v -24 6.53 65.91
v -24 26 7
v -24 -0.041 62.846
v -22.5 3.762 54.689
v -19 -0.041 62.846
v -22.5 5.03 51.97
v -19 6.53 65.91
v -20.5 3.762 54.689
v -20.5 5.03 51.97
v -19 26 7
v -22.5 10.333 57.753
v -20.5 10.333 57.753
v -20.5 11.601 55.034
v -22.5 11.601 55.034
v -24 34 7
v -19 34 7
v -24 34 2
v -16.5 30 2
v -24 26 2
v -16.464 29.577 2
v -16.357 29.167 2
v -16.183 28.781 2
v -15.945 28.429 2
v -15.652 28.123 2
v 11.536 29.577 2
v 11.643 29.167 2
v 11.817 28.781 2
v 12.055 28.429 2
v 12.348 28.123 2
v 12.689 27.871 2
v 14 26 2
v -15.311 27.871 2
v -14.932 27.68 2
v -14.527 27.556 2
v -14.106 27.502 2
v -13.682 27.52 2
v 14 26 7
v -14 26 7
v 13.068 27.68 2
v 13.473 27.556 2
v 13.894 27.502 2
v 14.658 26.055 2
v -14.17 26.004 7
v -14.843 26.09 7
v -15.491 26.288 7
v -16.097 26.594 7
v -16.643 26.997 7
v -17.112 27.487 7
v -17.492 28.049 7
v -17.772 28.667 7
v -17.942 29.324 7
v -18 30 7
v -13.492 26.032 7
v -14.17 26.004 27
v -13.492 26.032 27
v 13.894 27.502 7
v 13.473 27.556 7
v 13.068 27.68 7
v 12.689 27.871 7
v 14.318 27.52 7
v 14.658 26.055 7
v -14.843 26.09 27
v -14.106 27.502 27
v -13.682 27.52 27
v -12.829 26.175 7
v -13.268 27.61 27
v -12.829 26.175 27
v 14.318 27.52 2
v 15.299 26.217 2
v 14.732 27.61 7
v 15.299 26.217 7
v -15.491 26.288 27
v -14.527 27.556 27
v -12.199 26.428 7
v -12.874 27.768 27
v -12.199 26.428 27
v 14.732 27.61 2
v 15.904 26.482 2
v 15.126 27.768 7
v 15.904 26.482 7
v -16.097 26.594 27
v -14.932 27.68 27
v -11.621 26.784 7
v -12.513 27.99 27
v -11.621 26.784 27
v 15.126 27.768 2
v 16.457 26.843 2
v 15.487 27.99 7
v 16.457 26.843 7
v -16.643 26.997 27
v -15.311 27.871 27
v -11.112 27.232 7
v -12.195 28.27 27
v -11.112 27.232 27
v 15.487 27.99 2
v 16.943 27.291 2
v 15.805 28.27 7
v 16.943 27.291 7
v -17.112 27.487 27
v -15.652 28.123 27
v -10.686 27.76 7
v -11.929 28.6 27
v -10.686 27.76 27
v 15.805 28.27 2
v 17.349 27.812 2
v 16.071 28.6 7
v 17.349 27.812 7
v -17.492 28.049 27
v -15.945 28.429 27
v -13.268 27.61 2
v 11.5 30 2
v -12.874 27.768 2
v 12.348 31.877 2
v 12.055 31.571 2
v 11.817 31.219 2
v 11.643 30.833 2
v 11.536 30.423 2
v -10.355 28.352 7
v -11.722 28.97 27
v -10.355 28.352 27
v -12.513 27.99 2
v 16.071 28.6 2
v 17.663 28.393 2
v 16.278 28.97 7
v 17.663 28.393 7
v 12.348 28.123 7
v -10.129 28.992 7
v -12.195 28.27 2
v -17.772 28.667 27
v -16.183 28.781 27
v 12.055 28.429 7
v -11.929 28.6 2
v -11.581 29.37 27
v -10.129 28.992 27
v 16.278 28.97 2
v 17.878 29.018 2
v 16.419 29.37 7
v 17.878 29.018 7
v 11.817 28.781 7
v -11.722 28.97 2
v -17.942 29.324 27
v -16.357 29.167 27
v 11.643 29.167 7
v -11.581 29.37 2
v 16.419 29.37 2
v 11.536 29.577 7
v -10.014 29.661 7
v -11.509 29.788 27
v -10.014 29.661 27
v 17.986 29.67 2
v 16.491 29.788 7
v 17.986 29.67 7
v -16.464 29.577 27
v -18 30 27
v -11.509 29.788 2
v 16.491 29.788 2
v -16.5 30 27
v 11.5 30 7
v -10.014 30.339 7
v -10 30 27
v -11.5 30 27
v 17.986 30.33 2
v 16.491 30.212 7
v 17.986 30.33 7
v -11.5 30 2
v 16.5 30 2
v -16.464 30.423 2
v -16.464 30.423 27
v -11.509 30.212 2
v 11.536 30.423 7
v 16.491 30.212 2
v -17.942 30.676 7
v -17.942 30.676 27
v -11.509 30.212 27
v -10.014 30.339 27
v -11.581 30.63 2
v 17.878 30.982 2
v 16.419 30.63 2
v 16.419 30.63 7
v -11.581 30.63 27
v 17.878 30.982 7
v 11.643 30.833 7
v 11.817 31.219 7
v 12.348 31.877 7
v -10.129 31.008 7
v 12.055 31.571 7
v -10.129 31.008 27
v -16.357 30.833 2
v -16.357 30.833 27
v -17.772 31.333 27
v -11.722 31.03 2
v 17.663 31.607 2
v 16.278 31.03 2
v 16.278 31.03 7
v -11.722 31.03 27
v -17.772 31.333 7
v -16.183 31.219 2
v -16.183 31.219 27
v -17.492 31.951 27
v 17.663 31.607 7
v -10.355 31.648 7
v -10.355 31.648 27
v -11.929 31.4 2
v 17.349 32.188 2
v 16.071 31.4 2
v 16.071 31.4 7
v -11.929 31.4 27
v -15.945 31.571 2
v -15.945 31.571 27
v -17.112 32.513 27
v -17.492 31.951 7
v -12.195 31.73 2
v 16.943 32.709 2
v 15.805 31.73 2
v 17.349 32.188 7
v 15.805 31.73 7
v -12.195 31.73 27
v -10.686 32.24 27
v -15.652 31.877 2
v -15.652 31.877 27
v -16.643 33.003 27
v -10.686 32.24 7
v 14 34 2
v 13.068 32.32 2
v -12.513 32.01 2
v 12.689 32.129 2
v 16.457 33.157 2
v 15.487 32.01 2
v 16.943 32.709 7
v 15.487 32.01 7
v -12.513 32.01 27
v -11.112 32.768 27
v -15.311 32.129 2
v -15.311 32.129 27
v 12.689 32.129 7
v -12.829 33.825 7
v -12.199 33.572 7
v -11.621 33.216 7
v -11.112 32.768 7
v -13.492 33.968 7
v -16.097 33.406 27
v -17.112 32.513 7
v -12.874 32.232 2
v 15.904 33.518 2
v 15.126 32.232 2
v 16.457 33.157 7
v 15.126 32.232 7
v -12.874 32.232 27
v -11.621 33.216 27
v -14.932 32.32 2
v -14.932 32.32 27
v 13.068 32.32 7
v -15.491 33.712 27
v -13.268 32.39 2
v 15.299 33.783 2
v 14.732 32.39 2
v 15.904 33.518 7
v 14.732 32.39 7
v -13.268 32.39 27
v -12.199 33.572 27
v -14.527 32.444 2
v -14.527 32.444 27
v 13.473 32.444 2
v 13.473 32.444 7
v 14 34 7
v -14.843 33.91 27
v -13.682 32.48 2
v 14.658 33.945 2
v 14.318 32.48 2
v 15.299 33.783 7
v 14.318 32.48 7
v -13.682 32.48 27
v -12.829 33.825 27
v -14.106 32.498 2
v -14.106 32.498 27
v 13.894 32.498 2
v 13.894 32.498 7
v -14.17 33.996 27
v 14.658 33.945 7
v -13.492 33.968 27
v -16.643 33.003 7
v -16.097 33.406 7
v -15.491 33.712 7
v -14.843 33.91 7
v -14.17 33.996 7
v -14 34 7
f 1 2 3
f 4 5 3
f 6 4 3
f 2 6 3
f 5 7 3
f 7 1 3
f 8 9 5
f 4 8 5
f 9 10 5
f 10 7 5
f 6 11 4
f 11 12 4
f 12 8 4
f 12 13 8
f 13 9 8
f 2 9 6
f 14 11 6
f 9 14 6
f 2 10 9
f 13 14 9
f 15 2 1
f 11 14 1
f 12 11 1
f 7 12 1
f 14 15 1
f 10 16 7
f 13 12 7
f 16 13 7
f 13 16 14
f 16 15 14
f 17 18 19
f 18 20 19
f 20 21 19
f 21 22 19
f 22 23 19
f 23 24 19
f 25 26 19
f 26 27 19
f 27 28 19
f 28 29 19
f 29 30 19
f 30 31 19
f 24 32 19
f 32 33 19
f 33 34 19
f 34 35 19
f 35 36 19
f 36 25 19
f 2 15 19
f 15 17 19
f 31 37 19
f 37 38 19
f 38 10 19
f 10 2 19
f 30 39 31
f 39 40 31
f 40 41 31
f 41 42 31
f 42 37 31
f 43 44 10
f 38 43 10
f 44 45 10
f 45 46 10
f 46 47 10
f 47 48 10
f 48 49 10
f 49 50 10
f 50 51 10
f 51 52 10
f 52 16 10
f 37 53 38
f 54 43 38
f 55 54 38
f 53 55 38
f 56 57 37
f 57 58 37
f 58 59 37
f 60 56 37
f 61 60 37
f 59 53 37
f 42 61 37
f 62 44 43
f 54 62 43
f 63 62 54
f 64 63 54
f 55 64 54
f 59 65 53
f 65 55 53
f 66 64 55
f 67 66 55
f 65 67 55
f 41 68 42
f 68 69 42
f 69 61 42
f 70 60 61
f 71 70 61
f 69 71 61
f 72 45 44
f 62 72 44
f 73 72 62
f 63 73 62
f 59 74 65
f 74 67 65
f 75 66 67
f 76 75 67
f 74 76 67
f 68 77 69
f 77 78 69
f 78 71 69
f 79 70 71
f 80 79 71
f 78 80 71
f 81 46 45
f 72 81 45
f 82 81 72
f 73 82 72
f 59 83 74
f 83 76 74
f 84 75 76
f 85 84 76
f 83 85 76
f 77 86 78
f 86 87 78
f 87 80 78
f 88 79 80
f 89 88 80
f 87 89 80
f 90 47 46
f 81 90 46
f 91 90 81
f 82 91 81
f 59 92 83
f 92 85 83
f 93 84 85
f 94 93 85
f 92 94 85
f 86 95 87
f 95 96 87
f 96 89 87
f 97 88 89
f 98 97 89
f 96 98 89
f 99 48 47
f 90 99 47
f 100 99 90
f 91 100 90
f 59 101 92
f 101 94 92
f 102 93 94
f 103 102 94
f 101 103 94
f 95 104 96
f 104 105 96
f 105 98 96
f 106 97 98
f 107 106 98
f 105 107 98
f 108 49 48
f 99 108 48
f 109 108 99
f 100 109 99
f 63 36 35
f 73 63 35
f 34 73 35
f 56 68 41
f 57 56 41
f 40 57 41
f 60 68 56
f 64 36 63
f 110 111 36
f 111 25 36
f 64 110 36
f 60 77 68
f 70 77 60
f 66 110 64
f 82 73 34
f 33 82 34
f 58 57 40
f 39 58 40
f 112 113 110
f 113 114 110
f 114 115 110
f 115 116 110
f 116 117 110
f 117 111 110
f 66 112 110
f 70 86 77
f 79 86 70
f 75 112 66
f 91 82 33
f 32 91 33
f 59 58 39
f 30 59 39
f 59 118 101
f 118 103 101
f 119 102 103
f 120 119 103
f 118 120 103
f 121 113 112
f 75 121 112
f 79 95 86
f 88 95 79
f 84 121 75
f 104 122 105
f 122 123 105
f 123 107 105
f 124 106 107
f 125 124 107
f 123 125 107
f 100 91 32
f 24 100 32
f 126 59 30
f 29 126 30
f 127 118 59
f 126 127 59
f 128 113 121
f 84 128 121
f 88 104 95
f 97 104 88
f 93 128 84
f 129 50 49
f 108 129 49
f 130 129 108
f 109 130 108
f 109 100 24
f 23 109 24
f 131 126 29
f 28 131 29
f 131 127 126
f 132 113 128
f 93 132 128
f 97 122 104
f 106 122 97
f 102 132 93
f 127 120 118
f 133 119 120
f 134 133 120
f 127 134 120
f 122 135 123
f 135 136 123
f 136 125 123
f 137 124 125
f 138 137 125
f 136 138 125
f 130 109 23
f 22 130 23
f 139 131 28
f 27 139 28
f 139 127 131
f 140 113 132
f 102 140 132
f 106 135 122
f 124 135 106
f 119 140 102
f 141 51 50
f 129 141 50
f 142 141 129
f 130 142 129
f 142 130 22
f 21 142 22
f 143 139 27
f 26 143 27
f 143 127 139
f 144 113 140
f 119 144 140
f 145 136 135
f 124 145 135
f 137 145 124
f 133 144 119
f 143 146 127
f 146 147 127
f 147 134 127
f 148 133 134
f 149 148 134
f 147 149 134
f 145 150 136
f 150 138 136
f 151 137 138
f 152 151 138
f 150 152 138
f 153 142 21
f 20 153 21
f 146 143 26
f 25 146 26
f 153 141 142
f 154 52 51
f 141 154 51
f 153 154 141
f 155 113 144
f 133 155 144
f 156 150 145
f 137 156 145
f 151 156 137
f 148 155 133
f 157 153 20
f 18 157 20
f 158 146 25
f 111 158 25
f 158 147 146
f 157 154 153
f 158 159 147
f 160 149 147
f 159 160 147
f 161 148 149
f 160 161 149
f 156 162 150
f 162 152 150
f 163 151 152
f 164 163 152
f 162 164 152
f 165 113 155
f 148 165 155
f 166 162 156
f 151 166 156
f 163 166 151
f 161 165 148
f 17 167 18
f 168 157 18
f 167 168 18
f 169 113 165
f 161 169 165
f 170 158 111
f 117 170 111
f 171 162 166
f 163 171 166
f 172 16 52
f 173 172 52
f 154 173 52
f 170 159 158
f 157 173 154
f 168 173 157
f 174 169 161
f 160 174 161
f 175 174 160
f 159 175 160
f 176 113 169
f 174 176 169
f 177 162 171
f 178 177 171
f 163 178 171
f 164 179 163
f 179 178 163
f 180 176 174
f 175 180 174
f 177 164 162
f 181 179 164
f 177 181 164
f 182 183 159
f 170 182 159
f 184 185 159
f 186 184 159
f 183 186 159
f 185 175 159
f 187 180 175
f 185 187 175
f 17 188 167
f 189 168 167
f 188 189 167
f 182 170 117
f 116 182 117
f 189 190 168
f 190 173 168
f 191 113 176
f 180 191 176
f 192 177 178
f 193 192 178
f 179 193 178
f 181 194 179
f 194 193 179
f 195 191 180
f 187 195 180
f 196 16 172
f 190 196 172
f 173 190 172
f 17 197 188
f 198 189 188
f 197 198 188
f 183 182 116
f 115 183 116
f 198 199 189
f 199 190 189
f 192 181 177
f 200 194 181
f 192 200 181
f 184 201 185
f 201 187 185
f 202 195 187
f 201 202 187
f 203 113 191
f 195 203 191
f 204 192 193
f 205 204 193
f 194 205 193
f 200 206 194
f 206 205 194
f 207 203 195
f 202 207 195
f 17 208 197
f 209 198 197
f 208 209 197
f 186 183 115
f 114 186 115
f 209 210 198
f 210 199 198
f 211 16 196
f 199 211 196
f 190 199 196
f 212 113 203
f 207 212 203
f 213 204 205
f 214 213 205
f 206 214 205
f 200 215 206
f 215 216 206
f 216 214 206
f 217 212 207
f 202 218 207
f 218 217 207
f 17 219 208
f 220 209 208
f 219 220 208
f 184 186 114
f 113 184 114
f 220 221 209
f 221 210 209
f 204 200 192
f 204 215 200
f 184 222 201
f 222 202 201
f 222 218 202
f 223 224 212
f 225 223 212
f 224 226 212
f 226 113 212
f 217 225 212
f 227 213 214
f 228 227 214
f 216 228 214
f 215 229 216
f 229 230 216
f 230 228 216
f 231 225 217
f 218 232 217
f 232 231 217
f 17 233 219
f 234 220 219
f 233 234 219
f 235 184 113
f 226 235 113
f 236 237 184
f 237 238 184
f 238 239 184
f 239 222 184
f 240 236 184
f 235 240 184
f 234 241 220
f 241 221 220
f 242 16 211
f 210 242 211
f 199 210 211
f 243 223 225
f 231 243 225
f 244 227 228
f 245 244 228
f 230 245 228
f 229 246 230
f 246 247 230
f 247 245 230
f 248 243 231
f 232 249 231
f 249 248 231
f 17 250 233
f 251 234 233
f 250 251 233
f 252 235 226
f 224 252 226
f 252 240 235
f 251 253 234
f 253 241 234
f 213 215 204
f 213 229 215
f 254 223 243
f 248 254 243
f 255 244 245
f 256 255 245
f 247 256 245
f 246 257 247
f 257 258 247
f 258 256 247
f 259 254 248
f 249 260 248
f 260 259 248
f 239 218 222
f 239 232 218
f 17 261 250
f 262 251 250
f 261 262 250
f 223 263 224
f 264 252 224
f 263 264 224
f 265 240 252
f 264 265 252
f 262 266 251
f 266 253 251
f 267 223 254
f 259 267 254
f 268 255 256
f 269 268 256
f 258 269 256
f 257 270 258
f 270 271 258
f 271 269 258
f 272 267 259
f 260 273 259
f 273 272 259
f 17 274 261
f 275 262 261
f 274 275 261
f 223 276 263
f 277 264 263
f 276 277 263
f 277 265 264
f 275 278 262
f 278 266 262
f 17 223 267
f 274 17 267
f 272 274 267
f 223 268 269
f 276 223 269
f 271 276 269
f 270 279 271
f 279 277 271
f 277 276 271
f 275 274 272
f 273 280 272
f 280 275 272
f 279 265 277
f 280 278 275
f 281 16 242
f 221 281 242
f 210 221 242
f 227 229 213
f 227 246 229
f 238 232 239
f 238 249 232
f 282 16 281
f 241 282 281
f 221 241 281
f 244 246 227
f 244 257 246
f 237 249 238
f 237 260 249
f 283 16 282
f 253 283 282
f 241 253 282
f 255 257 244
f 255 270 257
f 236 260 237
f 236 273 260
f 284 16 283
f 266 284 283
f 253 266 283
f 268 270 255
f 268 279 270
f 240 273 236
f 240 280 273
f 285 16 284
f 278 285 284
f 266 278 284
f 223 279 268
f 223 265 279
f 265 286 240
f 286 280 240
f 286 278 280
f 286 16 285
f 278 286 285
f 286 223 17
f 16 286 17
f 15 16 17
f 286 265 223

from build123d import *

# Parameters (mm, degrees)
CROQUIS1_R              = 4
CROQUIS1_R_2            = 1.5
CROQUIS1_R_3            = 3.5
CROQUIS1_R_4            = 1
SALIENTE_EXTRUIR1_DEPTH = 2
REDONDEO1_R             = 3
REDONDEO2_R             = 10
REDONDEO3_R             = 2
CROQUIS2_R              = 2.5
SALIENTE_EXTRUIR2_DEPTH = 5
CORTAR_EXTRUIR1_START   = -2
CROQUIS3_W              = 157.769698099
CROQUIS3_H              = 195.926743138
CORTAR_EXTRUIR1_DEPTH   = 2
CROQUIS9_W              = 5
CROQUIS9_H              = 8
SALIENTE_EXTRUIR8_DEPTH = 65
CORTAR_EXTRUIR2_DEPTH   = 5
CROQUIS11_W             = 2
CROQUIS11_H             = 3
CORTAR_EXTRUIR3_DEPTH   = 7.250462
CROQUIS12_R             = 4
CROQUIS12_R_2           = 2.5
SALIENTE_EXTRUIR9_DEPTH = 20


with BuildPart() as part:
    # Croquis1 → Saliente-Extruir1 (new body)
    with BuildSketch(Plane.XY):
        with BuildLine():
            Line((-42.426406871, 42.426406871), (-38.890872965, 45.961940777))
            Line((-38.890872965, 45.961940777), (-31.096194078, 38.16726189))
            Line((-31.096194078, 38.16726189), (-22.653119822, 29.724187634))
            ThreePointArc((-22.653119822, 29.724187634), (-19.456811617, 29.044722177), (-17.535923889, 31.688251973))
            Line((-17.535923889, 31.688251973), (-15, 80))
            Line((-15, 80), (0, 83))
            Line((0, 83), (15, 80))
            Line((15, 80), (17.535923889, 31.688251973))
            ThreePointArc((17.535923889, 31.688251973), (19.456811617, 29.044722177), (22.653119822, 29.724187634))
            Line((22.653119822, 29.724187634), (31.096194078, 38.16726189))
            Line((31.096194078, 38.16726189), (38.890872965, 45.961940777))
            Line((38.890872965, 45.961940777), (42.426406871, 42.426406871))
            Line((42.426406871, 42.426406871), (45.961940777, 38.890872965))
            Line((45.961940777, 38.890872965), (38.16726189, 31.096194078))
            Line((38.16726189, 31.096194078), (28.284271247, 21.213203436))
            ThreePointArc((28.284271247, 21.213203436), (19.497474683, 0), (28.284271247, -21.213203436))
            Line((28.284271247, -21.213203436), (38.16726189, -31.096194078))
            Line((38.16726189, -31.096194078), (45.961940777, -38.890872965))
            Line((45.961940777, -38.890872965), (42.426406871, -42.426406871))
            Line((42.426406871, -42.426406871), (38.890872965, -45.961940777))
            Line((38.890872965, -45.961940777), (31.096194078, -38.16726189))
            Line((31.096194078, -38.16726189), (22.653119822, -29.724187634))
            ThreePointArc((22.653119822, -29.724187634), (19.456811617, -29.044722177), (17.535923889, -31.688251973))
            Line((17.535923889, -31.688251973), (15, -80))
            Line((15, -80), (0, -83))
            Line((0, -83), (-15, -80))
            Line((-15, -80), (-17.535923889, -31.688251973))
            ThreePointArc((-17.535923889, -31.688251973), (-19.456811617, -29.044722177), (-22.653119822, -29.724187634))
            Line((-22.653119822, -29.724187634), (-31.096194078, -38.16726189))
            Line((-31.096194078, -38.16726189), (-38.890872965, -45.961940777))
            Line((-38.890872965, -45.961940777), (-42.426406871, -42.426406871))
            Line((-42.426406871, -42.426406871), (-45.961940777, -38.890872965))
            Line((-45.961940777, -38.890872965), (-38.16726189, -31.096194078))
            Line((-38.16726189, -31.096194078), (-28.284271247, -21.213203436))
            ThreePointArc((-28.284271247, -21.213203436), (-19.497474683, 0), (-28.284271247, 21.213203436))
            Line((-28.284271247, 21.213203436), (-38.16726189, 31.096194078))
            Line((-38.16726189, 31.096194078), (-45.961940777, 38.890872965))
            Line((-45.961940777, 38.890872965), (-42.426406871, 42.426406871))
        make_face()
        with Locations((-15.25, 15.25)):
            Circle(CROQUIS1_R, mode=Mode.SUBTRACT)
        with Locations((-24.04163056, 24.04163056)):
            Circle(CROQUIS1_R_2, mode=Mode.SUBTRACT)
        with Locations((-38.890872965, 38.890872965)):
            Circle(CROQUIS1_R_2, mode=Mode.SUBTRACT)
        with Locations(Location((38.890872965, 38.890872965, 0), (0, 0, 180))):
            Circle(CROQUIS1_R_2, mode=Mode.SUBTRACT)
        with Locations(Location((24.04163056, 24.04163056, 0), (0, 0, 180))):
            Circle(CROQUIS1_R_2, mode=Mode.SUBTRACT)
        with Locations(Location((15.25, 15.25, 0), (0, 0, 180))):
            Circle(CROQUIS1_R, mode=Mode.SUBTRACT)
        with Locations((15.25, -15.25)):
            Circle(CROQUIS1_R, mode=Mode.SUBTRACT)
        with Locations((24.04163056, -24.04163056)):
            Circle(CROQUIS1_R_2, mode=Mode.SUBTRACT)
        with Locations((38.890872965, -38.890872965)):
            Circle(CROQUIS1_R_2, mode=Mode.SUBTRACT)
        with Locations(Location((-15.25, -15.25, 0), (0, 0, 180))):
            Circle(CROQUIS1_R, mode=Mode.SUBTRACT)
        with Locations(Location((-24.04163056, -24.04163056, 0), (0, 0, 180))):
            Circle(CROQUIS1_R_2, mode=Mode.SUBTRACT)
        with Locations(Location((-38.890872965, -38.890872965, 0), (0, 0, 180))):
            Circle(CROQUIS1_R_2, mode=Mode.SUBTRACT)
        Circle(CROQUIS1_R_3, mode=Mode.SUBTRACT)
        with Locations((-11.5, -75)):
            Circle(CROQUIS1_R_2, mode=Mode.SUBTRACT)
        with Locations(Location((-14, 30, 0), (0, 0, 180))):
            Circle(CROQUIS1_R_2, mode=Mode.SUBTRACT)
        with Locations(Location((11.5, -75, 0), (0, 0, 180))):
            Circle(CROQUIS1_R_2, mode=Mode.SUBTRACT)
        with Locations((11.5, 75)):
            Circle(CROQUIS1_R_2, mode=Mode.SUBTRACT)
        with Locations(Location((-11.5, 75, 0), (0, 0, 180))):
            Circle(CROQUIS1_R_2, mode=Mode.SUBTRACT)
        with Locations((14, 30)):
            Circle(CROQUIS1_R_2, mode=Mode.SUBTRACT)
        with Locations(Location((14, -30, 0), (0, 0, 180))):
            Circle(CROQUIS1_R_2, mode=Mode.SUBTRACT)
        with Locations((-14, -30)):
            Circle(CROQUIS1_R_2, mode=Mode.SUBTRACT)
        with Locations((0, 76)):
            Circle(CROQUIS1_R_4, mode=Mode.SUBTRACT)
        with Locations(Location((0, -76, 0), (0, 0, 180))):
            Circle(CROQUIS1_R_4, mode=Mode.SUBTRACT)
        with BuildLine():
            Line((-0.620989881, -15.781703725), (-8.212878231, -22.282027547))
            ThreePointArc((-8.212878231, -22.282027547), (-8.50046857, -23.388327104), (-7.562491222, -24.04163056))
            Line((-7.562491222, -24.04163056), (8.360661842, -24.04163056))
            ThreePointArc((8.360661842, -24.04163056), (9.30628687, -23.36688939), (8.975807622, -22.253217173))
            Line((8.975807622, -22.253217173), (0.644542909, -15.75289335))
            ThreePointArc((0.644542909, -15.75289335), (0.006637615, -15.541565769), (-0.620989881, -15.781703725))
        make_face(mode=Mode.SUBTRACT)
        with BuildLine():
            Line((-7.562491222, 24.04163056), (8.360661842, 24.04163056))
            ThreePointArc((8.360661842, 24.04163056), (9.30628687, 23.36688939), (8.975807622, 22.253217173))
            Line((8.975807622, 22.253217173), (0.644542909, 15.75289335))
            ThreePointArc((0.644542909, 15.75289335), (0.006637615, 15.541565769), (-0.620989881, 15.781703725))
            Line((-0.620989881, 15.781703725), (-8.212878231, 22.282027547))
            ThreePointArc((-8.212878231, 22.282027547), (-8.50046857, 23.388327104), (-7.562491222, 24.04163056))
        make_face(mode=Mode.SUBTRACT)
        Polygon((-10, -70), (10, -70), (0, -54.625), align=None, mode=Mode.SUBTRACT)
        Polygon((0, -48.625), (-10, -33.25), (10, -33.25), align=None, mode=Mode.SUBTRACT)
        Polygon((-13.235898342, -37.299112885), (-11.768175631, -65.260618389), (-3.788893912, -51.823882197), align=None, mode=Mode.SUBTRACT)
        Polygon((3.788893912, -51.823882197), (11.768175631, -65.260618389), (13.235898342, -37.299112885), align=None, mode=Mode.SUBTRACT)
        Polygon((13.235898342, 37.299112885), (11.768175631, 65.260618389), (3.788893912, 51.823882197), align=None, mode=Mode.SUBTRACT)
        Polygon((-3.788893912, 51.823882197), (-11.768175631, 65.260618389), (-13.235898342, 37.299112885), align=None, mode=Mode.SUBTRACT)
        Polygon((-10, 33.25), (10, 33.25), (0, 48.625), align=None, mode=Mode.SUBTRACT)
        Polygon((0, 54.625), (-10, 70), (10, 70), align=None, mode=Mode.SUBTRACT)
    extrude(amount=SALIENTE_EXTRUIR1_DEPTH)

    # Redondeo1
    redondeo1_edges = [part.edges().sort_by_distance(p)[0] for p in [
        (-38.890872965, 45.961940777, 1),
        (-15, 80, 1),
        (15, 80, 1),
        (38.890872965, 45.961940777, 1),
        (45.961940777, 38.890872965, 1),
        (45.961940777, -38.890872965, 1),
        (38.890872965, -45.961940777, 1),
        (15, -80, 1),
        (-15, -80, 1),
        (-38.890872965, -45.961940777, 1),
        (-45.961940777, -38.890872965, 1),
        (-45.961940777, 38.890872965, 1),
    ]]
    fillet(redondeo1_edges, radius=REDONDEO1_R)

    # Redondeo2
    redondeo2_edges = [part.edges().sort_by_distance(p)[0] for p in [
        (0, 83, 1),
        (0, -83, 1),
    ]]
    fillet(redondeo2_edges, radius=REDONDEO2_R)

    # Redondeo3
    redondeo3_edges = [part.edges().sort_by_distance(p)[0] for p in [
        (0, -54.625, 1),
        (-10, -70, 1),
        (10, -70, 1),
        (0, -48.625, 1),
        (10, -33.25, 1),
        (-10, -33.25, 1),
        (-3.788893912, -51.823882197, 1),
        (-13.235898342, -37.299112885, 1),
        (-11.768175631, -65.260618389, 1),
        (13.235898342, -37.299112885, 1),
        (3.788893912, -51.823882197, 1),
        (11.768175631, -65.260618389, 1),
        (3.788893912, 51.823882197, 1),
        (13.235898342, 37.299112885, 1),
        (11.768175631, 65.260618389, 1),
        (-13.235898342, 37.299112885, 1),
        (-3.788893912, 51.823882197, 1),
        (-11.768175631, 65.260618389, 1),
        (0, 48.625, 1),
        (-10, 33.25, 1),
        (10, 33.25, 1),
        (0, 54.625, 1),
        (10, 70, 1),
        (-10, 70, 1),
    ]]
    fillet(redondeo3_edges, radius=REDONDEO3_R)

    # Croquis2 → Saliente-Extruir2 (add)
    with BuildSketch(Plane.XY.offset(2)):
        with BuildLine():
            Line((14, 34), (-14, 34))
            Line((-14, 34), (-24, 34))
            Line((-24, 34), (-24, 26))
            Line((-24, 26), (-14, 26))
            Line((-14, 26), (14, 26))
            ThreePointArc((14, 26), (18, 30), (14, 34))
        make_face()
        with Locations((-14, 30)):
            Circle(CROQUIS2_R, mode=Mode.SUBTRACT)
        with Locations(Location((14, 30, 0), (0, 0, 180))):
            Circle(CROQUIS2_R, mode=Mode.SUBTRACT)
    extrude(amount=SALIENTE_EXTRUIR2_DEPTH)

    # Croquis3 → Cortar-Extruir1 (cut)
    with BuildSketch(Plane.XY.offset(2).offset(CORTAR_EXTRUIR1_START)):
        with Locations((-2.348052334, 2.181833492)):
            Rectangle(CROQUIS3_W, CROQUIS3_H)
    extrude(amount=CORTAR_EXTRUIR1_DEPTH, mode=Mode.SUBTRACT)

    # Croquis9 → Saliente-Extruir8 (add, along a direction that is not the sketch's normal)
    with BuildSketch(Plane.XY.offset(7)):
        with Locations((-21.5, 30)):
            Rectangle(CROQUIS9_W, CROQUIS9_H)
    extrude(amount=SALIENTE_EXTRUIR8_DEPTH, dir=(0, -0.4226182617406976, 0.9063077870366508))

    # Croquis10 → Cortar-Extruir2 (cut)
    with BuildSketch(Plane.ZY.offset(24)):
        Polygon((65.910006157, 6.529812987), (62.845828385, -0.041337452), (65.910006157, -1.470187013), align=None)
    extrude(amount=-CORTAR_EXTRUIR2_DEPTH, mode=Mode.SUBTRACT)

    # Croquis11 → Cortar-Extruir3 (cut)
    with BuildSketch(Plane(origin=(0, 24.037394477, 11.208821127), x_dir=(1, 0, 0), z_dir=(0, -0.9063077870366509, -0.4226182617406975))):
        with Locations((-21.5, 46.47513361)):
            Rectangle(CROQUIS11_W, CROQUIS11_H)
    extrude(amount=-CORTAR_EXTRUIR3_DEPTH, mode=Mode.SUBTRACT)

    # Croquis12 → Saliente-Extruir9 (add)
    with BuildSketch(Plane.XY.offset(7)):
        with Locations(Location((-14, 30, 0), (0, 0, 270))):
            Circle(CROQUIS12_R)
        with Locations((-14, 30)):
            Circle(CROQUIS12_R_2, mode=Mode.SUBTRACT)
    extrude(amount=SALIENTE_EXTRUIR9_DEPTH)


solid = part.part
